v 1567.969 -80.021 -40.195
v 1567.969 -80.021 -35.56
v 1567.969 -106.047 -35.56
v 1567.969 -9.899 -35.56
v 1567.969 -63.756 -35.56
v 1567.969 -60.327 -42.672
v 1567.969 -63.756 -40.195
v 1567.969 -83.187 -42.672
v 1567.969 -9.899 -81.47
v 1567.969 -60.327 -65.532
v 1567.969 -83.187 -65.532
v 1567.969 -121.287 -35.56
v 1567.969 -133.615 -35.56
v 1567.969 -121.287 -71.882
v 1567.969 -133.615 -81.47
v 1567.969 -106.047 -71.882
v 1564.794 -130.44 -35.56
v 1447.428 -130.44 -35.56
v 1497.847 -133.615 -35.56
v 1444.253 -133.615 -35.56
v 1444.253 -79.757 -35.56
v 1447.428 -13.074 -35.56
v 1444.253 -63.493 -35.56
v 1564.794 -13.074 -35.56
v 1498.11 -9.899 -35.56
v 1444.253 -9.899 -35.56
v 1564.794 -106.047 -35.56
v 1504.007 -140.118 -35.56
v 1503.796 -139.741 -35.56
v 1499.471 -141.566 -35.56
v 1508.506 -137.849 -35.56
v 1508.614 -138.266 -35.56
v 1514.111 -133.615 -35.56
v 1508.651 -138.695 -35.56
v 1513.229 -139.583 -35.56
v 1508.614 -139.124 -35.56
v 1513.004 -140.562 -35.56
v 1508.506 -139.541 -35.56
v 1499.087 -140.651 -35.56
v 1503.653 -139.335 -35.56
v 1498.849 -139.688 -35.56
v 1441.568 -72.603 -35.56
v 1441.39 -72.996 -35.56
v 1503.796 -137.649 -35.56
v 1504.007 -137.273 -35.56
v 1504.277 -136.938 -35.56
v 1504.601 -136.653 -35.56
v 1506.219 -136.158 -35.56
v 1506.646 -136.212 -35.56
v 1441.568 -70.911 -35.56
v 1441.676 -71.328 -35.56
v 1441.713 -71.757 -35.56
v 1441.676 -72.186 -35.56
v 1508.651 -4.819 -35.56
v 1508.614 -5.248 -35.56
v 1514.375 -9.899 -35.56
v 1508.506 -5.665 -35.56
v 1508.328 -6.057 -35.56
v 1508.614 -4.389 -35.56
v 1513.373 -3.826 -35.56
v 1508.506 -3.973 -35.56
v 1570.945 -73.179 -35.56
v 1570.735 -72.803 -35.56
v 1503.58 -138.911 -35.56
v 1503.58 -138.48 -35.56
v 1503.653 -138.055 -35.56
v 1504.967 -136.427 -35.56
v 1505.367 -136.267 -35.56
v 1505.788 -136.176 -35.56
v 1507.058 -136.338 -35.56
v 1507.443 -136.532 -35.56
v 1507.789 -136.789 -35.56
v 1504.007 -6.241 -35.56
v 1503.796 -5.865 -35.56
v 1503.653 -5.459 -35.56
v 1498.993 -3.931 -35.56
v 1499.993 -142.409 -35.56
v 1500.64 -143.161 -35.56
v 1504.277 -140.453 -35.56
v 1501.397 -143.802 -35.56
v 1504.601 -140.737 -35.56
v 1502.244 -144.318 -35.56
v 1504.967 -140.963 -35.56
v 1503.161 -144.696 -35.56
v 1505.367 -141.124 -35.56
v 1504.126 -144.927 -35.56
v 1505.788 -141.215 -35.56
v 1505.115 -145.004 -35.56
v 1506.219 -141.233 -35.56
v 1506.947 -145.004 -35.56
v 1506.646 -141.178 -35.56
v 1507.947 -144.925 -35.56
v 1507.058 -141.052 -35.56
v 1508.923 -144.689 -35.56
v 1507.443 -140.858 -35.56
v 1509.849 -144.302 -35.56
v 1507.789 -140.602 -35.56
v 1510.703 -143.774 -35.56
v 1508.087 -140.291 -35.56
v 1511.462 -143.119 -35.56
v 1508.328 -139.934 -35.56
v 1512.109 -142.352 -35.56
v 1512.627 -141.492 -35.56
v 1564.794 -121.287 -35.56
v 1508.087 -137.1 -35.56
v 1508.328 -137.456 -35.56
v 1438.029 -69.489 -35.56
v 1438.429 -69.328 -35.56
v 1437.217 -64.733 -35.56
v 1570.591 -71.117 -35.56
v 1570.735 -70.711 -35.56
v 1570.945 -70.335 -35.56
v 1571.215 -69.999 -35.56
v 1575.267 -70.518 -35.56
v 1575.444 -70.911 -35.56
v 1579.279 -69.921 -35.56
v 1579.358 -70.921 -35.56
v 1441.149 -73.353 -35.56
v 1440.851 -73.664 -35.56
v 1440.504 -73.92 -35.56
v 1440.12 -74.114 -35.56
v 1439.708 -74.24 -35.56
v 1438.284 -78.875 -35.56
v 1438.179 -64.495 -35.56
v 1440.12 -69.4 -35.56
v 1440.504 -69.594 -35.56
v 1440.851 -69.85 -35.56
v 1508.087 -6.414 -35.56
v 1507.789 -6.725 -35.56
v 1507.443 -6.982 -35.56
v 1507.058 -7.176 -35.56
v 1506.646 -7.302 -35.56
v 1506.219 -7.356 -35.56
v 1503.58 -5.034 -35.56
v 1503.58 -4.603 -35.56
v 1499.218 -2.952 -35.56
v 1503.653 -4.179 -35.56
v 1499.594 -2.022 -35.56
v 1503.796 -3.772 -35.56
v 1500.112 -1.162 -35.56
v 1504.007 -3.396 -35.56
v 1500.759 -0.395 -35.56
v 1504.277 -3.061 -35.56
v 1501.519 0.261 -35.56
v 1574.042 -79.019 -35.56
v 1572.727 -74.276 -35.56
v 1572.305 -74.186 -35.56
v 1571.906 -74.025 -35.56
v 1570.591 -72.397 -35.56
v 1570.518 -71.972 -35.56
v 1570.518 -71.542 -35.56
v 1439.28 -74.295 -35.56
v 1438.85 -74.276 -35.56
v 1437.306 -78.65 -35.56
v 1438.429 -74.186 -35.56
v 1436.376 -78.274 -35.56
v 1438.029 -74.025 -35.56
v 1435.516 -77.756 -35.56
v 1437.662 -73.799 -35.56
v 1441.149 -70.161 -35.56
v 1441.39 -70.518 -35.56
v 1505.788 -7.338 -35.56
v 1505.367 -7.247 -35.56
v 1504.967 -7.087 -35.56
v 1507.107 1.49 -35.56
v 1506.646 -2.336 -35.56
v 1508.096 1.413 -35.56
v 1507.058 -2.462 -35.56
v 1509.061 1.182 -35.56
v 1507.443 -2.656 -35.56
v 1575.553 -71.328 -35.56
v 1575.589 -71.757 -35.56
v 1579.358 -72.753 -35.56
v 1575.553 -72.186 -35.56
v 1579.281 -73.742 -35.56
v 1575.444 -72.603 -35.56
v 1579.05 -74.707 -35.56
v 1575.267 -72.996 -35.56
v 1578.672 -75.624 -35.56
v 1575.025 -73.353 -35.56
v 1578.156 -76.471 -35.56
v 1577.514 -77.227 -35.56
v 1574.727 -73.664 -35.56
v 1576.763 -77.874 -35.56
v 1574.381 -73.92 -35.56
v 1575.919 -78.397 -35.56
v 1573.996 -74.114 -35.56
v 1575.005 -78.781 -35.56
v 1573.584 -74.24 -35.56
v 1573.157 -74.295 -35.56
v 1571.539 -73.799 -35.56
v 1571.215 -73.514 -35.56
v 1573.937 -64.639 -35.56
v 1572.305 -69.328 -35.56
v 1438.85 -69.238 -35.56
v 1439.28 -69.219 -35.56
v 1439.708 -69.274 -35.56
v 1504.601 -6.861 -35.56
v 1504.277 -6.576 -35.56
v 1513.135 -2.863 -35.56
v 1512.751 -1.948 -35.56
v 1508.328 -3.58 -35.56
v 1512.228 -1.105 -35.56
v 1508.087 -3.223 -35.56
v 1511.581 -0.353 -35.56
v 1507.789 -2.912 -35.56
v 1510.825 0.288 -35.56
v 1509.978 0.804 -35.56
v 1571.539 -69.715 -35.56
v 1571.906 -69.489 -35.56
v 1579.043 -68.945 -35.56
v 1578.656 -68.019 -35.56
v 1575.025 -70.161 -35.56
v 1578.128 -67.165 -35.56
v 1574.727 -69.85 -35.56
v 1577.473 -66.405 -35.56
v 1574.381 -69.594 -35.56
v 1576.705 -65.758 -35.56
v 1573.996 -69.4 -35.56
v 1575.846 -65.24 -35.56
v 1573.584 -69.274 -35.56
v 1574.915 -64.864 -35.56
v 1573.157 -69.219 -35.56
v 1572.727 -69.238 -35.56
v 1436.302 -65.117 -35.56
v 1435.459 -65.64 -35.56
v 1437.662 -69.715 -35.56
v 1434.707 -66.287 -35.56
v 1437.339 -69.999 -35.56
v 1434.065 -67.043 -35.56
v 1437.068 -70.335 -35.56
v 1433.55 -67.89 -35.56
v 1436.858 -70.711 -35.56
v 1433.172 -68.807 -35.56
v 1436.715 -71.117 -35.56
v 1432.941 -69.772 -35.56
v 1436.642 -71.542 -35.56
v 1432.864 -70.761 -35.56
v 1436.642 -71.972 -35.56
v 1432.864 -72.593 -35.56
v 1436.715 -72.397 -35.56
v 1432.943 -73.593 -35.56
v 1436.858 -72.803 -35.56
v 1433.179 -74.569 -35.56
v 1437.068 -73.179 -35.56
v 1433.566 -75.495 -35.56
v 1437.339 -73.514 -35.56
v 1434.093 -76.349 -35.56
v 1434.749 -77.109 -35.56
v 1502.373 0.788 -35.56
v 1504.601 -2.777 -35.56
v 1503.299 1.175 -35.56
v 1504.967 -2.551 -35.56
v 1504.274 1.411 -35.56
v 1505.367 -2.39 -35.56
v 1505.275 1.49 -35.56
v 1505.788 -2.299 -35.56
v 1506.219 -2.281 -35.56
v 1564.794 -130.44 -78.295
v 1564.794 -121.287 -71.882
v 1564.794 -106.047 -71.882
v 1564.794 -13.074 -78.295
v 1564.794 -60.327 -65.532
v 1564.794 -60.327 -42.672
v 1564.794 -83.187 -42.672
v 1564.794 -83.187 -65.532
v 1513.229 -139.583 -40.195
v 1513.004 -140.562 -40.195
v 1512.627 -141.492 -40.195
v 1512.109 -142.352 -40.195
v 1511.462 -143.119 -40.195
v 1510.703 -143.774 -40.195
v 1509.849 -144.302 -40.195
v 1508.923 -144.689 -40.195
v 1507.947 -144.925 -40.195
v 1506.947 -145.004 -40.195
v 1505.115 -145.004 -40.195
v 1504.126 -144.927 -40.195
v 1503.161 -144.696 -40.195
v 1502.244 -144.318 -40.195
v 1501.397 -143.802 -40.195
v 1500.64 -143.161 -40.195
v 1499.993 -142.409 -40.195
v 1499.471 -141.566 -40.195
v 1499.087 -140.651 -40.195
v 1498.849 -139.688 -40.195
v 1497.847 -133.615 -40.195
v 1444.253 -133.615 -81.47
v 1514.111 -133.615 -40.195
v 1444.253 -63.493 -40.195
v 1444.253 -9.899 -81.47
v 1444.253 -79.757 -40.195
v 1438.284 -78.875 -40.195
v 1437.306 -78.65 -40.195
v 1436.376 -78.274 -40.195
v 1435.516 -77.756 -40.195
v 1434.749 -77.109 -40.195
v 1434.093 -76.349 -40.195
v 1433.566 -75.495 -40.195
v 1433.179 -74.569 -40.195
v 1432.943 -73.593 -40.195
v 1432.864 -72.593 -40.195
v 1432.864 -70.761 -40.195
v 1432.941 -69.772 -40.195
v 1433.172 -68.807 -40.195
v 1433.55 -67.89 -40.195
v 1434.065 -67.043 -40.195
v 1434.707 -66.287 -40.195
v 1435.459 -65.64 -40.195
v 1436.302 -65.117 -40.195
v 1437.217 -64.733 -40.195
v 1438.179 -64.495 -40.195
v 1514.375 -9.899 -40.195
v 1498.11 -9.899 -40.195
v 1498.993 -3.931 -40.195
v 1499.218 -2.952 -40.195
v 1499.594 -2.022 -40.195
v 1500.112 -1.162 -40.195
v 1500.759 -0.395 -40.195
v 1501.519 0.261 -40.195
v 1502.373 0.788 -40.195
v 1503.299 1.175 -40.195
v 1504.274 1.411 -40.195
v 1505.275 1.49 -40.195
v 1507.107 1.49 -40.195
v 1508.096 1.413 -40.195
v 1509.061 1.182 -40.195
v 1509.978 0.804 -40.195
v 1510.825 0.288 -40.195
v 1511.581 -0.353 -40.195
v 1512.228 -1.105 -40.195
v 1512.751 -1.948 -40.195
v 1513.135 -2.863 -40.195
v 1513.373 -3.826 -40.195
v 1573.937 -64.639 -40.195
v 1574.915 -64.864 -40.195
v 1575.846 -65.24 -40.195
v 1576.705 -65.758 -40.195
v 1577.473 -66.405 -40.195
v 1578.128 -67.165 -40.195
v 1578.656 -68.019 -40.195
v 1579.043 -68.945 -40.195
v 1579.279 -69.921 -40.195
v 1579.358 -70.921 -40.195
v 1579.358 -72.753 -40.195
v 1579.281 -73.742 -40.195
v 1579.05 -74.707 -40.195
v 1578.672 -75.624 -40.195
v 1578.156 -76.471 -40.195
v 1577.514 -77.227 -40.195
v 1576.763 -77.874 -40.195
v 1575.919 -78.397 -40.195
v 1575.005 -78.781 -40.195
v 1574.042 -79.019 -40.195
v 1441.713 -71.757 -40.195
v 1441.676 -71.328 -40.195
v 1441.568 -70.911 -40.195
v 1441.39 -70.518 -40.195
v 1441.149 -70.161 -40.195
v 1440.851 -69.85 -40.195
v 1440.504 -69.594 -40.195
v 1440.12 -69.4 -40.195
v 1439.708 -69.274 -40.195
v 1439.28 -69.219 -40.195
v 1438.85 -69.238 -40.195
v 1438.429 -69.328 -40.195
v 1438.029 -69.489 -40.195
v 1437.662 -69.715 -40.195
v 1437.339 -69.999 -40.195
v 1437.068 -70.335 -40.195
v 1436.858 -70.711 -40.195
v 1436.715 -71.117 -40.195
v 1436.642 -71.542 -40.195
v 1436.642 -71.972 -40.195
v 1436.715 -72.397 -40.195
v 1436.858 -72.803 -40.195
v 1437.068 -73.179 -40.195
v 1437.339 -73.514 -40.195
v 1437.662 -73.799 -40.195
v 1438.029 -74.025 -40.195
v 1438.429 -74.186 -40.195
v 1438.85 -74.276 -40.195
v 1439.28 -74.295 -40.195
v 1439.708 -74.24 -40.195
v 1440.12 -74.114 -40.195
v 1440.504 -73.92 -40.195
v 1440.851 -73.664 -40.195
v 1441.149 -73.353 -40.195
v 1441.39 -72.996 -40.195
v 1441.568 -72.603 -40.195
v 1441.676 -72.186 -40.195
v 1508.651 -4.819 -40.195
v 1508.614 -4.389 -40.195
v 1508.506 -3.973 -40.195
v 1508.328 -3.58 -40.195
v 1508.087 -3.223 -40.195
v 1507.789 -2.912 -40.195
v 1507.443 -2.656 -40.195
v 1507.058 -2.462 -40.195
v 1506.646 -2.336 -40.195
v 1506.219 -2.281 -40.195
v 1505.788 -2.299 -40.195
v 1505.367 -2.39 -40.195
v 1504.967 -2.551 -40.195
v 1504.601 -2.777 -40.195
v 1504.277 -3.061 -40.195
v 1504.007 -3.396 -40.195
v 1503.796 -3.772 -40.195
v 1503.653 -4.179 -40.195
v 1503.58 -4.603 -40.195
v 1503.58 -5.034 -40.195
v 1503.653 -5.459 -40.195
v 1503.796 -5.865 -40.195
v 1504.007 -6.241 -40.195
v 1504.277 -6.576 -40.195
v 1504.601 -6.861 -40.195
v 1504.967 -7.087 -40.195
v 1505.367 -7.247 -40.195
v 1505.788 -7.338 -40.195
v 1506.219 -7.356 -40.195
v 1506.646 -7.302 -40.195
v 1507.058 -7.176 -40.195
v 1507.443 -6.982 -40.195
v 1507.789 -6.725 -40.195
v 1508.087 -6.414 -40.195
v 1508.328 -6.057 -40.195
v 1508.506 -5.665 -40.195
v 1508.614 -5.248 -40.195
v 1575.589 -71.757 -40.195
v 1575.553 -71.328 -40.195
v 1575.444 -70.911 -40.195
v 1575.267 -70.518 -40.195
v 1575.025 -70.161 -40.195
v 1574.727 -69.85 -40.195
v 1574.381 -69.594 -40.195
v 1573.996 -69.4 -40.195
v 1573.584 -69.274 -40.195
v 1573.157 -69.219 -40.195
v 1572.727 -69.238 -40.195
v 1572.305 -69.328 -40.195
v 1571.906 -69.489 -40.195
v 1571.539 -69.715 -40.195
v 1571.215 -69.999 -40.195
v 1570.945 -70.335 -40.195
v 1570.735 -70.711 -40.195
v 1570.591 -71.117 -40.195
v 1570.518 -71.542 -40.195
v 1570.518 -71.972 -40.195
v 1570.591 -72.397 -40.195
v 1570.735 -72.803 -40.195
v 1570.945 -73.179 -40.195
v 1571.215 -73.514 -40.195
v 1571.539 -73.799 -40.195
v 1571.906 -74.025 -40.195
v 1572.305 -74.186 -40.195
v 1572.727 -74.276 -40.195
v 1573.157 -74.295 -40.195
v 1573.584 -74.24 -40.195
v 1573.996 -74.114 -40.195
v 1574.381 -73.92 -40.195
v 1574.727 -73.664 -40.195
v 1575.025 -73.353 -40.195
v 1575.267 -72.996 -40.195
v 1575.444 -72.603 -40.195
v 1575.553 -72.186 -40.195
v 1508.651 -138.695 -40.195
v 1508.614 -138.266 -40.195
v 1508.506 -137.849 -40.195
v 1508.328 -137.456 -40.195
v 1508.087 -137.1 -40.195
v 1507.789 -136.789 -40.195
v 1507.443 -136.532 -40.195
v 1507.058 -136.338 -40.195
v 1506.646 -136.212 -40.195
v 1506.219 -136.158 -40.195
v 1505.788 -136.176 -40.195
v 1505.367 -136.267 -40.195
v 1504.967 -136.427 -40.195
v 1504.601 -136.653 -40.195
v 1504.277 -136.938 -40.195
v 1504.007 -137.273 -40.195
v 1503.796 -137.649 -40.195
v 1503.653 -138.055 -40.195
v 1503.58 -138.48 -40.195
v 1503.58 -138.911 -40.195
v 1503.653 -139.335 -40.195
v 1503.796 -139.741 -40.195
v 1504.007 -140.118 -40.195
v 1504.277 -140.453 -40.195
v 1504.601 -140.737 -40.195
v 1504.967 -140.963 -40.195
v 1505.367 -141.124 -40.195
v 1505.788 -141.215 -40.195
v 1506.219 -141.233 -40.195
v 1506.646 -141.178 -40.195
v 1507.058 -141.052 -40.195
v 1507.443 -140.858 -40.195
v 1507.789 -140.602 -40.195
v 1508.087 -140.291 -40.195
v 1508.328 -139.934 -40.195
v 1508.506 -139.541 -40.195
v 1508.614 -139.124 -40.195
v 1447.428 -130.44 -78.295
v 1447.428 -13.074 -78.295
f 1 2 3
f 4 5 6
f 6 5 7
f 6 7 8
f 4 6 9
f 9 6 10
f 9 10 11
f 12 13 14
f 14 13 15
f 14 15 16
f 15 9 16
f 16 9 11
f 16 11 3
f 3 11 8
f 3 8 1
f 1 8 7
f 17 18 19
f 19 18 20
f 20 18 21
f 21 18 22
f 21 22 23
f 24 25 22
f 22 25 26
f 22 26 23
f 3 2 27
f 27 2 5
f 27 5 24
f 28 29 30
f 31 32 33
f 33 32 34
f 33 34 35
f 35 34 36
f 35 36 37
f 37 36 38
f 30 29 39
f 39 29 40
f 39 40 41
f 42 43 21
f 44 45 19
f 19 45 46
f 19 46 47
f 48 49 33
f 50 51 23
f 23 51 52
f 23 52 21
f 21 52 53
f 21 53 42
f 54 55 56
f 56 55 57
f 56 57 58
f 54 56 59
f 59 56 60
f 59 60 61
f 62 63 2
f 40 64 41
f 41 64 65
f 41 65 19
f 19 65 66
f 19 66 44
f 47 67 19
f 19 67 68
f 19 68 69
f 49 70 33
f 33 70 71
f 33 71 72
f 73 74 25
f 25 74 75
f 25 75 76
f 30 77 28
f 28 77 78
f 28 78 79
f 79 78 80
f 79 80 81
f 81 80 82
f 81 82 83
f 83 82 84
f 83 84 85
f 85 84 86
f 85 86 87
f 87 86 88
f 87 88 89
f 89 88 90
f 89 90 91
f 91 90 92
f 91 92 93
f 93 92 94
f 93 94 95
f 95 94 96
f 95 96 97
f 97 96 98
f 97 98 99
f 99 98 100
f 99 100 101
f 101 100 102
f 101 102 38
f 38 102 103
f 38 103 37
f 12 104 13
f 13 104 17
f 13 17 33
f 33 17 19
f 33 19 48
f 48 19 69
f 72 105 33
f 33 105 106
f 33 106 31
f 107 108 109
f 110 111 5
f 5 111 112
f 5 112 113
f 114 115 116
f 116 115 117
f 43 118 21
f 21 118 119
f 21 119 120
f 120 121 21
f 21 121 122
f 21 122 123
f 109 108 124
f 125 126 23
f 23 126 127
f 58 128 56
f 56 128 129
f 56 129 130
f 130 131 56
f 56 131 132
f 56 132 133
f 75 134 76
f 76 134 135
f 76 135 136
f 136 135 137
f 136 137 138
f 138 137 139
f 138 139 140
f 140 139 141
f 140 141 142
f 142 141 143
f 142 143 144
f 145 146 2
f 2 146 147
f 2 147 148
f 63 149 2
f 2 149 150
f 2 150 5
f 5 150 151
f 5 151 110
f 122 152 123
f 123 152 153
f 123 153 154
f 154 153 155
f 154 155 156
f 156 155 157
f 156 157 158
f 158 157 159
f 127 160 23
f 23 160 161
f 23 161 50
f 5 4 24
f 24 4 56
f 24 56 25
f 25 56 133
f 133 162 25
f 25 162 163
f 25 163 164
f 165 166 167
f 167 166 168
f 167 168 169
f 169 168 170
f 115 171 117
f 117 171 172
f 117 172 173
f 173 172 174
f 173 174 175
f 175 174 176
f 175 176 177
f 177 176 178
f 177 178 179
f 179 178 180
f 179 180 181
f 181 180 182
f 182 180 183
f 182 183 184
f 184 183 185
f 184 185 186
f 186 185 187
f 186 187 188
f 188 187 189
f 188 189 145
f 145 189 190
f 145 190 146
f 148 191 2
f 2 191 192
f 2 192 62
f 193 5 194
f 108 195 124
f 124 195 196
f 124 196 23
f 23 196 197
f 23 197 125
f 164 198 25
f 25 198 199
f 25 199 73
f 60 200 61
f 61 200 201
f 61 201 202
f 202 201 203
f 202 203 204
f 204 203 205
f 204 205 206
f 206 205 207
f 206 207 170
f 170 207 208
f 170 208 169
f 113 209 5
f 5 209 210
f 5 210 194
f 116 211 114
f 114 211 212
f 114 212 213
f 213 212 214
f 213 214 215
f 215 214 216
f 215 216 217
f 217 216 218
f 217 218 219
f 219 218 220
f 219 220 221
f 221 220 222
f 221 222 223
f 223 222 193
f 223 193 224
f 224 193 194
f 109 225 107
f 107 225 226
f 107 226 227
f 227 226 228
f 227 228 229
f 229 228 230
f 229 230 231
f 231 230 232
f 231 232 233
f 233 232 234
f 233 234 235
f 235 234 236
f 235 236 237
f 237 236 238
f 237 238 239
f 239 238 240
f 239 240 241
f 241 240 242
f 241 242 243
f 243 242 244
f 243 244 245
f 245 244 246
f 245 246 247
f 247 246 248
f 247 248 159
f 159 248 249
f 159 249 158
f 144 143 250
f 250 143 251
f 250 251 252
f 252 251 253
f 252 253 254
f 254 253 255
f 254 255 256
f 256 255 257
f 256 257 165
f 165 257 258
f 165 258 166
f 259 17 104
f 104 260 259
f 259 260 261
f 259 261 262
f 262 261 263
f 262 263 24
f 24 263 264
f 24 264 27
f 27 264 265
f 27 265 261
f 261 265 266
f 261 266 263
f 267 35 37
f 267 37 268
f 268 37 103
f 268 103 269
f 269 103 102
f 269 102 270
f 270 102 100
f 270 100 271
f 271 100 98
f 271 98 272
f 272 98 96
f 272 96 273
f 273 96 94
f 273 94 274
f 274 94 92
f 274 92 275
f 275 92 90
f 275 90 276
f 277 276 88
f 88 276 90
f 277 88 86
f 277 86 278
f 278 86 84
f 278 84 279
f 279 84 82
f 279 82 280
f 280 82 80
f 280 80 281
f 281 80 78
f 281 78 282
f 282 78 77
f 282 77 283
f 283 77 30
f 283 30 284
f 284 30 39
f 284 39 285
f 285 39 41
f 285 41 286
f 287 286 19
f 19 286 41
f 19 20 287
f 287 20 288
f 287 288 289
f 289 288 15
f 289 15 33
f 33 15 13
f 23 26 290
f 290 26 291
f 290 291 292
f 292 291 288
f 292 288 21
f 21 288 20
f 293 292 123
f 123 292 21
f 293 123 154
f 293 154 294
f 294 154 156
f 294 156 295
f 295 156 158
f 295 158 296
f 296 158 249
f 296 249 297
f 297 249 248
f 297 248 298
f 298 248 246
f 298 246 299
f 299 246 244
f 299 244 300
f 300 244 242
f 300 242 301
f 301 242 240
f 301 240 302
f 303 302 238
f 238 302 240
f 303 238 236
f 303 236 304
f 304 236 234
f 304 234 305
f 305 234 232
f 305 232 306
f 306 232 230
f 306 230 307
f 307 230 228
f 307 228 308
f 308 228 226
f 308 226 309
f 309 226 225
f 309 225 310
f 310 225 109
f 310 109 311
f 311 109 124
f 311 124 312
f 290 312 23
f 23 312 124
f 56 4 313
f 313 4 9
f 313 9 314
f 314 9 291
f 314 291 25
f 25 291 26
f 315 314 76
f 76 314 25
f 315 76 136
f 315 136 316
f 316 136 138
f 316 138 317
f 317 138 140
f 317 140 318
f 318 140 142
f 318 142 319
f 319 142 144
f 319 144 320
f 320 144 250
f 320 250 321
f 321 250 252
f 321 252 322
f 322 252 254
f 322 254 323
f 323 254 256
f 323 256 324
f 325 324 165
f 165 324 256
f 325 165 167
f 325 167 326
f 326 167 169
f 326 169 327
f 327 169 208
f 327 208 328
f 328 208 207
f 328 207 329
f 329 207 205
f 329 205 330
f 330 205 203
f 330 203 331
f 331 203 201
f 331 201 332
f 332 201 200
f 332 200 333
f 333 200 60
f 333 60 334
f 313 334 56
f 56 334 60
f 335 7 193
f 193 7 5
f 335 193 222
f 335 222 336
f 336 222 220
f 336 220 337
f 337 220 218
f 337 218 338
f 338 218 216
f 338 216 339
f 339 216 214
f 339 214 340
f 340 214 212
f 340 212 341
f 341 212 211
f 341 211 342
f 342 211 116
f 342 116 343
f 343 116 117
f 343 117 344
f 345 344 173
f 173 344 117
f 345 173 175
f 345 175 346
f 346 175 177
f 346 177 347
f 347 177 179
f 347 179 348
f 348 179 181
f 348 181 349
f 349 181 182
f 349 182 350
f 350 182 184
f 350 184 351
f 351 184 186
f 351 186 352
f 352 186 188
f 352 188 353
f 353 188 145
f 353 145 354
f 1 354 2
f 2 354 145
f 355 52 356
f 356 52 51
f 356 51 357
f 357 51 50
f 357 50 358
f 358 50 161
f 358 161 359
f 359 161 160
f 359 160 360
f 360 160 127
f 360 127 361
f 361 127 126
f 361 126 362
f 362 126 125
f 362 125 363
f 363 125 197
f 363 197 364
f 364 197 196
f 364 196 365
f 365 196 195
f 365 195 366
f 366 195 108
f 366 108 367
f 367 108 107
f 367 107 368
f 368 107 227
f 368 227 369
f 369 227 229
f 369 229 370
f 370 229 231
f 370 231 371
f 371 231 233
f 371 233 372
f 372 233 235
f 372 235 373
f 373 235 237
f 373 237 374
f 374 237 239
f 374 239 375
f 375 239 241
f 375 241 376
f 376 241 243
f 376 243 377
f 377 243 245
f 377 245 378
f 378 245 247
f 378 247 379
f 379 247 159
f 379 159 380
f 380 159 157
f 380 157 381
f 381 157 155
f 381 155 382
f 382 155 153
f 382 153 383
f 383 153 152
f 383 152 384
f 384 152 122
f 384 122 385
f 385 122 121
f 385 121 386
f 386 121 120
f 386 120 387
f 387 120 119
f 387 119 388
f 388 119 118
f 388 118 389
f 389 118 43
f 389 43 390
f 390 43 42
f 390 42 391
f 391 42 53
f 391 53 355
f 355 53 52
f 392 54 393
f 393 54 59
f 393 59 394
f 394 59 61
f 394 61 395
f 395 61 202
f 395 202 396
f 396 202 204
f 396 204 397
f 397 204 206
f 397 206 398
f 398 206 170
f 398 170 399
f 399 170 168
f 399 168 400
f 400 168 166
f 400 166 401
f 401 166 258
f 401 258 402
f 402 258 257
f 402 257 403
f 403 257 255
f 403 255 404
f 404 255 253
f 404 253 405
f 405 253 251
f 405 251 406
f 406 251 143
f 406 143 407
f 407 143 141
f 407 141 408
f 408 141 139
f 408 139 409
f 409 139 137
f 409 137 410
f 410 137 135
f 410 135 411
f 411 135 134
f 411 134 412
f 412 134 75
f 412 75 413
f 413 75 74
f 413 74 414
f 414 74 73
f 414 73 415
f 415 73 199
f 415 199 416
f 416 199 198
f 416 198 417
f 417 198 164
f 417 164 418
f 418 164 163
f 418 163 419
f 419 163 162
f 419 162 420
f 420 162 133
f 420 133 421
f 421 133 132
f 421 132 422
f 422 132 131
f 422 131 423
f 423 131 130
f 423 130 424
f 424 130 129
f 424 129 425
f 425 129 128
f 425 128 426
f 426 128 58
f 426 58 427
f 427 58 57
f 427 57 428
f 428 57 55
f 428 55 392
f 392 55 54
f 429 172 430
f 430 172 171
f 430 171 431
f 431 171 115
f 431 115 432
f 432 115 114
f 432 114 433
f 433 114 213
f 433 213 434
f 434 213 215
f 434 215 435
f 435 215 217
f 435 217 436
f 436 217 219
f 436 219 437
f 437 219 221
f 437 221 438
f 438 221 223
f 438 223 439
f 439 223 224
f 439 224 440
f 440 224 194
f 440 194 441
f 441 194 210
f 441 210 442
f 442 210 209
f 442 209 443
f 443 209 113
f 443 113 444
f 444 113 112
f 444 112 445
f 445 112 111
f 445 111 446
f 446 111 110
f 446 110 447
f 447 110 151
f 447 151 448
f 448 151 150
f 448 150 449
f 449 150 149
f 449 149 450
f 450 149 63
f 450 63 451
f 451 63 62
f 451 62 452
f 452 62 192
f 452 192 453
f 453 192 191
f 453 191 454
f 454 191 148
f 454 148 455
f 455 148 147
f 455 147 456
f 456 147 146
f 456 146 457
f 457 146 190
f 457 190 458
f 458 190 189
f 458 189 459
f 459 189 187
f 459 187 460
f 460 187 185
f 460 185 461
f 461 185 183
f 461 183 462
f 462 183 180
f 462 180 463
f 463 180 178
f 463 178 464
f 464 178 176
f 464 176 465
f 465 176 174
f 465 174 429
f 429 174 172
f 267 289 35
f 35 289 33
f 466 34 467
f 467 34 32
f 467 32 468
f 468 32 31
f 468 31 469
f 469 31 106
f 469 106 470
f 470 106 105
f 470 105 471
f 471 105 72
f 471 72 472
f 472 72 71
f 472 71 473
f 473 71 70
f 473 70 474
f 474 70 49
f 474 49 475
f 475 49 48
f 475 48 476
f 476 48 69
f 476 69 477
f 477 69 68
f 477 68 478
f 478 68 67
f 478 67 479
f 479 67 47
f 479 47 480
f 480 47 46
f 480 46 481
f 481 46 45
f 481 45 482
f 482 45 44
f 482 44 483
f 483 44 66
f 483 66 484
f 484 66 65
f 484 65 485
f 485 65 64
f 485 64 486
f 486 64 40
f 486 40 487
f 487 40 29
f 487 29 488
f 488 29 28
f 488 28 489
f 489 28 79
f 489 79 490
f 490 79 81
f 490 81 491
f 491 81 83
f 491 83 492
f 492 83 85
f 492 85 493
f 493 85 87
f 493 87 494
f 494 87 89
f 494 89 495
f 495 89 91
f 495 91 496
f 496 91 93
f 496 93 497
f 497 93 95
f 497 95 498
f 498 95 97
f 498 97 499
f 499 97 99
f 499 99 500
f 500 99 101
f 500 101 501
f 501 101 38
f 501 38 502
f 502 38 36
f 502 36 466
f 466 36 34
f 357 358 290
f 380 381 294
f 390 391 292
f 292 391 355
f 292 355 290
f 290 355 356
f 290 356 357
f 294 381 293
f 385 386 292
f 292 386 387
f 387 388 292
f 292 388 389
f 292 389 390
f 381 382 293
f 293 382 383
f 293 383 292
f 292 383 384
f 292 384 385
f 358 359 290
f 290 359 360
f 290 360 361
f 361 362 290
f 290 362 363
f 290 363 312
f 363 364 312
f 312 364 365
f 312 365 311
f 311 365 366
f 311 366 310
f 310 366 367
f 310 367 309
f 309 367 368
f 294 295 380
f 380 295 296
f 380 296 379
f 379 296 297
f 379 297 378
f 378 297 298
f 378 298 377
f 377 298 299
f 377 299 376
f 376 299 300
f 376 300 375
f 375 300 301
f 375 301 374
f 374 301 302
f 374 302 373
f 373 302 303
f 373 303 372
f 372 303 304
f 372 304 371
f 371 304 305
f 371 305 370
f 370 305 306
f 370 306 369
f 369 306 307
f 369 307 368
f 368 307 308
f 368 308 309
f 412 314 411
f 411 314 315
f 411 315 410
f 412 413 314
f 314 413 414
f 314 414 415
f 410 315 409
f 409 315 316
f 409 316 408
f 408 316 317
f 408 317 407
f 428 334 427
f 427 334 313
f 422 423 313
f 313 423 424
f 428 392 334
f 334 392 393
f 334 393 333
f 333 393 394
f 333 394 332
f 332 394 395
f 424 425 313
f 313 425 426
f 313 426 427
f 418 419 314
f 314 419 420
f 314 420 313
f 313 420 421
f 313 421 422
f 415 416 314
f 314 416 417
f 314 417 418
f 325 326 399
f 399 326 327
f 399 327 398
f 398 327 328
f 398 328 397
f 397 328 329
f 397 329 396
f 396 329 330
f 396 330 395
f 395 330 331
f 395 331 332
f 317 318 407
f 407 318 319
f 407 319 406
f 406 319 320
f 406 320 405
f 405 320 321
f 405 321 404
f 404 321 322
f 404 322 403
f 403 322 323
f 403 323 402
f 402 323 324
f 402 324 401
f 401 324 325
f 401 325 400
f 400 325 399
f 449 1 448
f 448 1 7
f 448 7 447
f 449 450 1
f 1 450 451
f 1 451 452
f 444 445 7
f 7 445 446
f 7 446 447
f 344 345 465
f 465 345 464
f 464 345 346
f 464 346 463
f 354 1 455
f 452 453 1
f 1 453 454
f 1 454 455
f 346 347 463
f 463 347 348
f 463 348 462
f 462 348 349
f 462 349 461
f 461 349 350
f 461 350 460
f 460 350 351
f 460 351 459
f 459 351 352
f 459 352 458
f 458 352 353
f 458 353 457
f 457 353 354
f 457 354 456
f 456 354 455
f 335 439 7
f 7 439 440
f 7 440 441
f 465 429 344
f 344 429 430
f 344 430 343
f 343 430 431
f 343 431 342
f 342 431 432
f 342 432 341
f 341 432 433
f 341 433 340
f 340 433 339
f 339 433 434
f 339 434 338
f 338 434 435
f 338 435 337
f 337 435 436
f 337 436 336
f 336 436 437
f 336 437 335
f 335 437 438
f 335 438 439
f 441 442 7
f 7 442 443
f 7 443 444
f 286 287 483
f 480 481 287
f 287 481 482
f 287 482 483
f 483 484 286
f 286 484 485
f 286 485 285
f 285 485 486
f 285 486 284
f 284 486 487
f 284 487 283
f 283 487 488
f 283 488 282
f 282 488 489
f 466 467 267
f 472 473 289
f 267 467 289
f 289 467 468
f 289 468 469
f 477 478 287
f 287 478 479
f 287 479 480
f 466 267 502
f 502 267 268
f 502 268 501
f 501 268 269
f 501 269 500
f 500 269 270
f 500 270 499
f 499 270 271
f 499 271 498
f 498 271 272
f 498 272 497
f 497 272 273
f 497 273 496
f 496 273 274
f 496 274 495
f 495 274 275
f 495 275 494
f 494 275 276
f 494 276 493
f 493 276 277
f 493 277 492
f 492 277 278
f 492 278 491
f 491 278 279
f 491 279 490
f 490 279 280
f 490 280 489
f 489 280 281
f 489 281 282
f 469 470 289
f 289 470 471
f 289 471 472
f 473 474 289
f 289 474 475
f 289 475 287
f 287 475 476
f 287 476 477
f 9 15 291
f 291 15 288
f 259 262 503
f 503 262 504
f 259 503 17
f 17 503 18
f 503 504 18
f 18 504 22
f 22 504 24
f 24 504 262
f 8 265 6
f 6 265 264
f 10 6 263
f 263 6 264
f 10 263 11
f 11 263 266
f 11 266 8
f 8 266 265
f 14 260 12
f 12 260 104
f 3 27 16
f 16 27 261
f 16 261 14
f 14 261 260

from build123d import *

# Parameters (mm, degrees)
BOSS_EXTRUDE1_START = -40.195413
SKETCH2_R           = 2.54
SKETCH2_W           = 117.366510392
SKETCH2_H           = 117.366510392
BOSS_EXTRUDE1_DEPTH = 40.195413
SKETCH8_W           = 123.716510392
SKETCH8_H           = 123.716510392
SKETCH8_W_2         = 117.366510392
SKETCH8_H_2         = 117.366510392
BOSS_EXTRUDE6_DEPTH = 38.1
SKETCH9_W           = 123.716510392
SKETCH9_H           = 123.716510392
BOSS_EXTRUDE7_DEPTH = 3.175
SKETCH11_W          = 203.085481381
SKETCH11_H          = 253.856851726
CUT_EXTRUDE3_DEPTH  = 35.56
SKETCH14_W          = 36.322
SKETCH14_H          = 15.24
SKETCH14_W_2        = 22.86
SKETCH14_H_2        = 22.86
CUT_EXTRUDE4_DEPTH  = 12.7


with BuildPart() as part:
    # Sketch2 → Boss-Extrude1 (new body)
    with BuildSketch(Plane.XY.offset(BOSS_EXTRUDE1_START)):
        with BuildLine():
            Line((1514.374964129, -9.898719074), (1513.372529957, -3.825593235))
            ThreePointArc((1513.372529957, -3.825593235), (1511.215570373, -0.017767746), (1507.107304519, 1.490264506))
            Line((1507.107304519, 1.490264506), (1506.145090959, 1.490264506))
            Line((1506.145090959, 1.490264506), (1505.274868714, 1.490264506))
            ThreePointArc((1505.274868714, 1.490264506), (1501.126253206, -0.052294453), (1498.993223216, -3.930526246))
            Line((1498.993223216, -3.930526246), (1498.110381295, -9.898719074))
            Line((1498.110381295, -9.898719074), (1494.935381295, -9.898719074))
            Line((1494.935381295, -9.898719074), (1444.2526074, -9.898719074))
            Line((1444.2526074, -9.898719074), (1444.2526074, -59.236149034))
            Line((1444.2526074, -59.236149034), (1444.2526074, -63.492872737))
            Line((1444.2526074, -63.492872737), (1438.179481561, -64.495306909))
            ThreePointArc((1438.179481561, -64.495306909), (1434.371656072, -66.652266493), (1432.86362382, -70.760532347))
            Line((1432.86362382, -70.760532347), (1432.86362382, -71.722745907))
            Line((1432.86362382, -71.722745907), (1432.86362382, -72.592968152))
            ThreePointArc((1432.86362382, -72.592968152), (1434.406182779, -76.74158366), (1438.284414571, -78.874613651))
            Line((1438.284414571, -78.874613651), (1444.2526074, -79.757455571))
            Line((1444.2526074, -79.757455571), (1444.2526074, -82.932455571))
            Line((1444.2526074, -82.932455571), (1444.2526074, -133.615229466))
            Line((1444.2526074, -133.615229466), (1493.590037359, -133.615229466))
            Line((1493.590037359, -133.615229466), (1497.846761063, -133.615229466))
            Line((1497.846761063, -133.615229466), (1498.849195235, -139.688355305))
            ThreePointArc((1498.849195235, -139.688355305), (1501.006154818, -143.496180794), (1505.114420673, -145.004213046))
            Line((1505.114420673, -145.004213046), (1506.076634233, -145.004213046))
            Line((1506.076634233, -145.004213046), (1506.946856478, -145.004213046))
            ThreePointArc((1506.946856478, -145.004213046), (1511.095471986, -143.461654087), (1513.228501976, -139.583422295))
            Line((1513.228501976, -139.583422295), (1514.111343897, -133.615229466))
            Line((1514.111343897, -133.615229466), (1517.286343897, -133.615229466))
            Line((1517.286343897, -133.615229466), (1567.969117792, -133.615229466))
            Line((1567.969117792, -133.615229466), (1567.969117792, -84.277799507))
            Line((1567.969117792, -84.277799507), (1567.969117792, -80.021075803))
            Line((1567.969117792, -80.021075803), (1574.042243631, -79.018641631))
            ThreePointArc((1574.042243631, -79.018641631), (1577.85006912, -76.861682048), (1579.358101372, -72.753416193))
            Line((1579.358101372, -72.753416193), (1579.358101372, -71.791202633))
            Line((1579.358101372, -71.791202633), (1579.358101372, -70.920980388))
            ThreePointArc((1579.358101372, -70.920980388), (1577.815542413, -66.77236488), (1573.93731062, -64.63933489))
            Line((1573.93731062, -64.63933489), (1567.969117792, -63.756492969))
            Line((1567.969117792, -63.756492969), (1567.969117792, -60.581492969))
            Line((1567.969117792, -60.581492969), (1567.969117792, -9.898719074))
            Line((1567.969117792, -9.898719074), (1518.631687833, -9.898719074))
            Line((1518.631687833, -9.898719074), (1514.374964129, -9.898719074))
        make_face()
        with Locations((1506.110862596, -138.695229466)):
            Circle(SKETCH2_R, mode=Mode.SUBTRACT)
        with Locations((1439.1726074, -71.75697427)):
            Circle(SKETCH2_R, mode=Mode.SUBTRACT)
        with Locations((1506.110862596, -71.75697427)):
            Rectangle(SKETCH2_W, SKETCH2_H, mode=Mode.SUBTRACT)
        with Locations((1506.110862596, -4.818719074)):
            Circle(SKETCH2_R, mode=Mode.SUBTRACT)
        with Locations((1573.049117792, -71.75697427)):
            Circle(SKETCH2_R, mode=Mode.SUBTRACT)
    extrude(amount=BOSS_EXTRUDE1_DEPTH)

    # Sketch8 → Boss-Extrude6 (add)
    with BuildSketch(Plane(origin=(0, 0, -40.195413), x_dir=(-1, 0, 0), z_dir=(0, 0, -1))):
        with Locations((-1506.110862596, -71.75697427)):
            Rectangle(SKETCH8_W, SKETCH8_H)
        with Locations((-1506.110862596, -71.75697427)):
            Rectangle(SKETCH8_W_2, SKETCH8_H_2, mode=Mode.SUBTRACT)
    extrude(amount=BOSS_EXTRUDE6_DEPTH)

    # Sketch9 → Boss-Extrude7 (add)
    with BuildSketch(Plane(origin=(0, 0, -78.295413), x_dir=(-1, 0, 0), z_dir=(0, 0, -1))):
        with Locations((-1506.110862596, -71.75697427)):
            Rectangle(SKETCH9_W, SKETCH9_H)
    extrude(amount=BOSS_EXTRUDE7_DEPTH)

    # Sketch11 → Cut-Extrude3 (cut)
    with BuildSketch(Plane.XY):
        with Locations((1484.541394478, -61.275179675)):
            Rectangle(SKETCH11_W, SKETCH11_H)
    extrude(amount=-CUT_EXTRUDE3_DEPTH, mode=Mode.SUBTRACT)

    # Sketch14 → Cut-Extrude4 (cut)
    with BuildSketch(Plane(origin=(1567.969117792, 0, 0), x_dir=(0, 0, -1), z_dir=(1, 0, 0))):
        with Locations((53.721, -113.66697427)):
            Rectangle(SKETCH14_W, SKETCH14_H)
        with Locations((54.102, -71.75697427)):
            Rectangle(SKETCH14_W_2, SKETCH14_H_2)
    extrude(amount=-CUT_EXTRUDE4_DEPTH, mode=Mode.SUBTRACT)


solid = part.part
